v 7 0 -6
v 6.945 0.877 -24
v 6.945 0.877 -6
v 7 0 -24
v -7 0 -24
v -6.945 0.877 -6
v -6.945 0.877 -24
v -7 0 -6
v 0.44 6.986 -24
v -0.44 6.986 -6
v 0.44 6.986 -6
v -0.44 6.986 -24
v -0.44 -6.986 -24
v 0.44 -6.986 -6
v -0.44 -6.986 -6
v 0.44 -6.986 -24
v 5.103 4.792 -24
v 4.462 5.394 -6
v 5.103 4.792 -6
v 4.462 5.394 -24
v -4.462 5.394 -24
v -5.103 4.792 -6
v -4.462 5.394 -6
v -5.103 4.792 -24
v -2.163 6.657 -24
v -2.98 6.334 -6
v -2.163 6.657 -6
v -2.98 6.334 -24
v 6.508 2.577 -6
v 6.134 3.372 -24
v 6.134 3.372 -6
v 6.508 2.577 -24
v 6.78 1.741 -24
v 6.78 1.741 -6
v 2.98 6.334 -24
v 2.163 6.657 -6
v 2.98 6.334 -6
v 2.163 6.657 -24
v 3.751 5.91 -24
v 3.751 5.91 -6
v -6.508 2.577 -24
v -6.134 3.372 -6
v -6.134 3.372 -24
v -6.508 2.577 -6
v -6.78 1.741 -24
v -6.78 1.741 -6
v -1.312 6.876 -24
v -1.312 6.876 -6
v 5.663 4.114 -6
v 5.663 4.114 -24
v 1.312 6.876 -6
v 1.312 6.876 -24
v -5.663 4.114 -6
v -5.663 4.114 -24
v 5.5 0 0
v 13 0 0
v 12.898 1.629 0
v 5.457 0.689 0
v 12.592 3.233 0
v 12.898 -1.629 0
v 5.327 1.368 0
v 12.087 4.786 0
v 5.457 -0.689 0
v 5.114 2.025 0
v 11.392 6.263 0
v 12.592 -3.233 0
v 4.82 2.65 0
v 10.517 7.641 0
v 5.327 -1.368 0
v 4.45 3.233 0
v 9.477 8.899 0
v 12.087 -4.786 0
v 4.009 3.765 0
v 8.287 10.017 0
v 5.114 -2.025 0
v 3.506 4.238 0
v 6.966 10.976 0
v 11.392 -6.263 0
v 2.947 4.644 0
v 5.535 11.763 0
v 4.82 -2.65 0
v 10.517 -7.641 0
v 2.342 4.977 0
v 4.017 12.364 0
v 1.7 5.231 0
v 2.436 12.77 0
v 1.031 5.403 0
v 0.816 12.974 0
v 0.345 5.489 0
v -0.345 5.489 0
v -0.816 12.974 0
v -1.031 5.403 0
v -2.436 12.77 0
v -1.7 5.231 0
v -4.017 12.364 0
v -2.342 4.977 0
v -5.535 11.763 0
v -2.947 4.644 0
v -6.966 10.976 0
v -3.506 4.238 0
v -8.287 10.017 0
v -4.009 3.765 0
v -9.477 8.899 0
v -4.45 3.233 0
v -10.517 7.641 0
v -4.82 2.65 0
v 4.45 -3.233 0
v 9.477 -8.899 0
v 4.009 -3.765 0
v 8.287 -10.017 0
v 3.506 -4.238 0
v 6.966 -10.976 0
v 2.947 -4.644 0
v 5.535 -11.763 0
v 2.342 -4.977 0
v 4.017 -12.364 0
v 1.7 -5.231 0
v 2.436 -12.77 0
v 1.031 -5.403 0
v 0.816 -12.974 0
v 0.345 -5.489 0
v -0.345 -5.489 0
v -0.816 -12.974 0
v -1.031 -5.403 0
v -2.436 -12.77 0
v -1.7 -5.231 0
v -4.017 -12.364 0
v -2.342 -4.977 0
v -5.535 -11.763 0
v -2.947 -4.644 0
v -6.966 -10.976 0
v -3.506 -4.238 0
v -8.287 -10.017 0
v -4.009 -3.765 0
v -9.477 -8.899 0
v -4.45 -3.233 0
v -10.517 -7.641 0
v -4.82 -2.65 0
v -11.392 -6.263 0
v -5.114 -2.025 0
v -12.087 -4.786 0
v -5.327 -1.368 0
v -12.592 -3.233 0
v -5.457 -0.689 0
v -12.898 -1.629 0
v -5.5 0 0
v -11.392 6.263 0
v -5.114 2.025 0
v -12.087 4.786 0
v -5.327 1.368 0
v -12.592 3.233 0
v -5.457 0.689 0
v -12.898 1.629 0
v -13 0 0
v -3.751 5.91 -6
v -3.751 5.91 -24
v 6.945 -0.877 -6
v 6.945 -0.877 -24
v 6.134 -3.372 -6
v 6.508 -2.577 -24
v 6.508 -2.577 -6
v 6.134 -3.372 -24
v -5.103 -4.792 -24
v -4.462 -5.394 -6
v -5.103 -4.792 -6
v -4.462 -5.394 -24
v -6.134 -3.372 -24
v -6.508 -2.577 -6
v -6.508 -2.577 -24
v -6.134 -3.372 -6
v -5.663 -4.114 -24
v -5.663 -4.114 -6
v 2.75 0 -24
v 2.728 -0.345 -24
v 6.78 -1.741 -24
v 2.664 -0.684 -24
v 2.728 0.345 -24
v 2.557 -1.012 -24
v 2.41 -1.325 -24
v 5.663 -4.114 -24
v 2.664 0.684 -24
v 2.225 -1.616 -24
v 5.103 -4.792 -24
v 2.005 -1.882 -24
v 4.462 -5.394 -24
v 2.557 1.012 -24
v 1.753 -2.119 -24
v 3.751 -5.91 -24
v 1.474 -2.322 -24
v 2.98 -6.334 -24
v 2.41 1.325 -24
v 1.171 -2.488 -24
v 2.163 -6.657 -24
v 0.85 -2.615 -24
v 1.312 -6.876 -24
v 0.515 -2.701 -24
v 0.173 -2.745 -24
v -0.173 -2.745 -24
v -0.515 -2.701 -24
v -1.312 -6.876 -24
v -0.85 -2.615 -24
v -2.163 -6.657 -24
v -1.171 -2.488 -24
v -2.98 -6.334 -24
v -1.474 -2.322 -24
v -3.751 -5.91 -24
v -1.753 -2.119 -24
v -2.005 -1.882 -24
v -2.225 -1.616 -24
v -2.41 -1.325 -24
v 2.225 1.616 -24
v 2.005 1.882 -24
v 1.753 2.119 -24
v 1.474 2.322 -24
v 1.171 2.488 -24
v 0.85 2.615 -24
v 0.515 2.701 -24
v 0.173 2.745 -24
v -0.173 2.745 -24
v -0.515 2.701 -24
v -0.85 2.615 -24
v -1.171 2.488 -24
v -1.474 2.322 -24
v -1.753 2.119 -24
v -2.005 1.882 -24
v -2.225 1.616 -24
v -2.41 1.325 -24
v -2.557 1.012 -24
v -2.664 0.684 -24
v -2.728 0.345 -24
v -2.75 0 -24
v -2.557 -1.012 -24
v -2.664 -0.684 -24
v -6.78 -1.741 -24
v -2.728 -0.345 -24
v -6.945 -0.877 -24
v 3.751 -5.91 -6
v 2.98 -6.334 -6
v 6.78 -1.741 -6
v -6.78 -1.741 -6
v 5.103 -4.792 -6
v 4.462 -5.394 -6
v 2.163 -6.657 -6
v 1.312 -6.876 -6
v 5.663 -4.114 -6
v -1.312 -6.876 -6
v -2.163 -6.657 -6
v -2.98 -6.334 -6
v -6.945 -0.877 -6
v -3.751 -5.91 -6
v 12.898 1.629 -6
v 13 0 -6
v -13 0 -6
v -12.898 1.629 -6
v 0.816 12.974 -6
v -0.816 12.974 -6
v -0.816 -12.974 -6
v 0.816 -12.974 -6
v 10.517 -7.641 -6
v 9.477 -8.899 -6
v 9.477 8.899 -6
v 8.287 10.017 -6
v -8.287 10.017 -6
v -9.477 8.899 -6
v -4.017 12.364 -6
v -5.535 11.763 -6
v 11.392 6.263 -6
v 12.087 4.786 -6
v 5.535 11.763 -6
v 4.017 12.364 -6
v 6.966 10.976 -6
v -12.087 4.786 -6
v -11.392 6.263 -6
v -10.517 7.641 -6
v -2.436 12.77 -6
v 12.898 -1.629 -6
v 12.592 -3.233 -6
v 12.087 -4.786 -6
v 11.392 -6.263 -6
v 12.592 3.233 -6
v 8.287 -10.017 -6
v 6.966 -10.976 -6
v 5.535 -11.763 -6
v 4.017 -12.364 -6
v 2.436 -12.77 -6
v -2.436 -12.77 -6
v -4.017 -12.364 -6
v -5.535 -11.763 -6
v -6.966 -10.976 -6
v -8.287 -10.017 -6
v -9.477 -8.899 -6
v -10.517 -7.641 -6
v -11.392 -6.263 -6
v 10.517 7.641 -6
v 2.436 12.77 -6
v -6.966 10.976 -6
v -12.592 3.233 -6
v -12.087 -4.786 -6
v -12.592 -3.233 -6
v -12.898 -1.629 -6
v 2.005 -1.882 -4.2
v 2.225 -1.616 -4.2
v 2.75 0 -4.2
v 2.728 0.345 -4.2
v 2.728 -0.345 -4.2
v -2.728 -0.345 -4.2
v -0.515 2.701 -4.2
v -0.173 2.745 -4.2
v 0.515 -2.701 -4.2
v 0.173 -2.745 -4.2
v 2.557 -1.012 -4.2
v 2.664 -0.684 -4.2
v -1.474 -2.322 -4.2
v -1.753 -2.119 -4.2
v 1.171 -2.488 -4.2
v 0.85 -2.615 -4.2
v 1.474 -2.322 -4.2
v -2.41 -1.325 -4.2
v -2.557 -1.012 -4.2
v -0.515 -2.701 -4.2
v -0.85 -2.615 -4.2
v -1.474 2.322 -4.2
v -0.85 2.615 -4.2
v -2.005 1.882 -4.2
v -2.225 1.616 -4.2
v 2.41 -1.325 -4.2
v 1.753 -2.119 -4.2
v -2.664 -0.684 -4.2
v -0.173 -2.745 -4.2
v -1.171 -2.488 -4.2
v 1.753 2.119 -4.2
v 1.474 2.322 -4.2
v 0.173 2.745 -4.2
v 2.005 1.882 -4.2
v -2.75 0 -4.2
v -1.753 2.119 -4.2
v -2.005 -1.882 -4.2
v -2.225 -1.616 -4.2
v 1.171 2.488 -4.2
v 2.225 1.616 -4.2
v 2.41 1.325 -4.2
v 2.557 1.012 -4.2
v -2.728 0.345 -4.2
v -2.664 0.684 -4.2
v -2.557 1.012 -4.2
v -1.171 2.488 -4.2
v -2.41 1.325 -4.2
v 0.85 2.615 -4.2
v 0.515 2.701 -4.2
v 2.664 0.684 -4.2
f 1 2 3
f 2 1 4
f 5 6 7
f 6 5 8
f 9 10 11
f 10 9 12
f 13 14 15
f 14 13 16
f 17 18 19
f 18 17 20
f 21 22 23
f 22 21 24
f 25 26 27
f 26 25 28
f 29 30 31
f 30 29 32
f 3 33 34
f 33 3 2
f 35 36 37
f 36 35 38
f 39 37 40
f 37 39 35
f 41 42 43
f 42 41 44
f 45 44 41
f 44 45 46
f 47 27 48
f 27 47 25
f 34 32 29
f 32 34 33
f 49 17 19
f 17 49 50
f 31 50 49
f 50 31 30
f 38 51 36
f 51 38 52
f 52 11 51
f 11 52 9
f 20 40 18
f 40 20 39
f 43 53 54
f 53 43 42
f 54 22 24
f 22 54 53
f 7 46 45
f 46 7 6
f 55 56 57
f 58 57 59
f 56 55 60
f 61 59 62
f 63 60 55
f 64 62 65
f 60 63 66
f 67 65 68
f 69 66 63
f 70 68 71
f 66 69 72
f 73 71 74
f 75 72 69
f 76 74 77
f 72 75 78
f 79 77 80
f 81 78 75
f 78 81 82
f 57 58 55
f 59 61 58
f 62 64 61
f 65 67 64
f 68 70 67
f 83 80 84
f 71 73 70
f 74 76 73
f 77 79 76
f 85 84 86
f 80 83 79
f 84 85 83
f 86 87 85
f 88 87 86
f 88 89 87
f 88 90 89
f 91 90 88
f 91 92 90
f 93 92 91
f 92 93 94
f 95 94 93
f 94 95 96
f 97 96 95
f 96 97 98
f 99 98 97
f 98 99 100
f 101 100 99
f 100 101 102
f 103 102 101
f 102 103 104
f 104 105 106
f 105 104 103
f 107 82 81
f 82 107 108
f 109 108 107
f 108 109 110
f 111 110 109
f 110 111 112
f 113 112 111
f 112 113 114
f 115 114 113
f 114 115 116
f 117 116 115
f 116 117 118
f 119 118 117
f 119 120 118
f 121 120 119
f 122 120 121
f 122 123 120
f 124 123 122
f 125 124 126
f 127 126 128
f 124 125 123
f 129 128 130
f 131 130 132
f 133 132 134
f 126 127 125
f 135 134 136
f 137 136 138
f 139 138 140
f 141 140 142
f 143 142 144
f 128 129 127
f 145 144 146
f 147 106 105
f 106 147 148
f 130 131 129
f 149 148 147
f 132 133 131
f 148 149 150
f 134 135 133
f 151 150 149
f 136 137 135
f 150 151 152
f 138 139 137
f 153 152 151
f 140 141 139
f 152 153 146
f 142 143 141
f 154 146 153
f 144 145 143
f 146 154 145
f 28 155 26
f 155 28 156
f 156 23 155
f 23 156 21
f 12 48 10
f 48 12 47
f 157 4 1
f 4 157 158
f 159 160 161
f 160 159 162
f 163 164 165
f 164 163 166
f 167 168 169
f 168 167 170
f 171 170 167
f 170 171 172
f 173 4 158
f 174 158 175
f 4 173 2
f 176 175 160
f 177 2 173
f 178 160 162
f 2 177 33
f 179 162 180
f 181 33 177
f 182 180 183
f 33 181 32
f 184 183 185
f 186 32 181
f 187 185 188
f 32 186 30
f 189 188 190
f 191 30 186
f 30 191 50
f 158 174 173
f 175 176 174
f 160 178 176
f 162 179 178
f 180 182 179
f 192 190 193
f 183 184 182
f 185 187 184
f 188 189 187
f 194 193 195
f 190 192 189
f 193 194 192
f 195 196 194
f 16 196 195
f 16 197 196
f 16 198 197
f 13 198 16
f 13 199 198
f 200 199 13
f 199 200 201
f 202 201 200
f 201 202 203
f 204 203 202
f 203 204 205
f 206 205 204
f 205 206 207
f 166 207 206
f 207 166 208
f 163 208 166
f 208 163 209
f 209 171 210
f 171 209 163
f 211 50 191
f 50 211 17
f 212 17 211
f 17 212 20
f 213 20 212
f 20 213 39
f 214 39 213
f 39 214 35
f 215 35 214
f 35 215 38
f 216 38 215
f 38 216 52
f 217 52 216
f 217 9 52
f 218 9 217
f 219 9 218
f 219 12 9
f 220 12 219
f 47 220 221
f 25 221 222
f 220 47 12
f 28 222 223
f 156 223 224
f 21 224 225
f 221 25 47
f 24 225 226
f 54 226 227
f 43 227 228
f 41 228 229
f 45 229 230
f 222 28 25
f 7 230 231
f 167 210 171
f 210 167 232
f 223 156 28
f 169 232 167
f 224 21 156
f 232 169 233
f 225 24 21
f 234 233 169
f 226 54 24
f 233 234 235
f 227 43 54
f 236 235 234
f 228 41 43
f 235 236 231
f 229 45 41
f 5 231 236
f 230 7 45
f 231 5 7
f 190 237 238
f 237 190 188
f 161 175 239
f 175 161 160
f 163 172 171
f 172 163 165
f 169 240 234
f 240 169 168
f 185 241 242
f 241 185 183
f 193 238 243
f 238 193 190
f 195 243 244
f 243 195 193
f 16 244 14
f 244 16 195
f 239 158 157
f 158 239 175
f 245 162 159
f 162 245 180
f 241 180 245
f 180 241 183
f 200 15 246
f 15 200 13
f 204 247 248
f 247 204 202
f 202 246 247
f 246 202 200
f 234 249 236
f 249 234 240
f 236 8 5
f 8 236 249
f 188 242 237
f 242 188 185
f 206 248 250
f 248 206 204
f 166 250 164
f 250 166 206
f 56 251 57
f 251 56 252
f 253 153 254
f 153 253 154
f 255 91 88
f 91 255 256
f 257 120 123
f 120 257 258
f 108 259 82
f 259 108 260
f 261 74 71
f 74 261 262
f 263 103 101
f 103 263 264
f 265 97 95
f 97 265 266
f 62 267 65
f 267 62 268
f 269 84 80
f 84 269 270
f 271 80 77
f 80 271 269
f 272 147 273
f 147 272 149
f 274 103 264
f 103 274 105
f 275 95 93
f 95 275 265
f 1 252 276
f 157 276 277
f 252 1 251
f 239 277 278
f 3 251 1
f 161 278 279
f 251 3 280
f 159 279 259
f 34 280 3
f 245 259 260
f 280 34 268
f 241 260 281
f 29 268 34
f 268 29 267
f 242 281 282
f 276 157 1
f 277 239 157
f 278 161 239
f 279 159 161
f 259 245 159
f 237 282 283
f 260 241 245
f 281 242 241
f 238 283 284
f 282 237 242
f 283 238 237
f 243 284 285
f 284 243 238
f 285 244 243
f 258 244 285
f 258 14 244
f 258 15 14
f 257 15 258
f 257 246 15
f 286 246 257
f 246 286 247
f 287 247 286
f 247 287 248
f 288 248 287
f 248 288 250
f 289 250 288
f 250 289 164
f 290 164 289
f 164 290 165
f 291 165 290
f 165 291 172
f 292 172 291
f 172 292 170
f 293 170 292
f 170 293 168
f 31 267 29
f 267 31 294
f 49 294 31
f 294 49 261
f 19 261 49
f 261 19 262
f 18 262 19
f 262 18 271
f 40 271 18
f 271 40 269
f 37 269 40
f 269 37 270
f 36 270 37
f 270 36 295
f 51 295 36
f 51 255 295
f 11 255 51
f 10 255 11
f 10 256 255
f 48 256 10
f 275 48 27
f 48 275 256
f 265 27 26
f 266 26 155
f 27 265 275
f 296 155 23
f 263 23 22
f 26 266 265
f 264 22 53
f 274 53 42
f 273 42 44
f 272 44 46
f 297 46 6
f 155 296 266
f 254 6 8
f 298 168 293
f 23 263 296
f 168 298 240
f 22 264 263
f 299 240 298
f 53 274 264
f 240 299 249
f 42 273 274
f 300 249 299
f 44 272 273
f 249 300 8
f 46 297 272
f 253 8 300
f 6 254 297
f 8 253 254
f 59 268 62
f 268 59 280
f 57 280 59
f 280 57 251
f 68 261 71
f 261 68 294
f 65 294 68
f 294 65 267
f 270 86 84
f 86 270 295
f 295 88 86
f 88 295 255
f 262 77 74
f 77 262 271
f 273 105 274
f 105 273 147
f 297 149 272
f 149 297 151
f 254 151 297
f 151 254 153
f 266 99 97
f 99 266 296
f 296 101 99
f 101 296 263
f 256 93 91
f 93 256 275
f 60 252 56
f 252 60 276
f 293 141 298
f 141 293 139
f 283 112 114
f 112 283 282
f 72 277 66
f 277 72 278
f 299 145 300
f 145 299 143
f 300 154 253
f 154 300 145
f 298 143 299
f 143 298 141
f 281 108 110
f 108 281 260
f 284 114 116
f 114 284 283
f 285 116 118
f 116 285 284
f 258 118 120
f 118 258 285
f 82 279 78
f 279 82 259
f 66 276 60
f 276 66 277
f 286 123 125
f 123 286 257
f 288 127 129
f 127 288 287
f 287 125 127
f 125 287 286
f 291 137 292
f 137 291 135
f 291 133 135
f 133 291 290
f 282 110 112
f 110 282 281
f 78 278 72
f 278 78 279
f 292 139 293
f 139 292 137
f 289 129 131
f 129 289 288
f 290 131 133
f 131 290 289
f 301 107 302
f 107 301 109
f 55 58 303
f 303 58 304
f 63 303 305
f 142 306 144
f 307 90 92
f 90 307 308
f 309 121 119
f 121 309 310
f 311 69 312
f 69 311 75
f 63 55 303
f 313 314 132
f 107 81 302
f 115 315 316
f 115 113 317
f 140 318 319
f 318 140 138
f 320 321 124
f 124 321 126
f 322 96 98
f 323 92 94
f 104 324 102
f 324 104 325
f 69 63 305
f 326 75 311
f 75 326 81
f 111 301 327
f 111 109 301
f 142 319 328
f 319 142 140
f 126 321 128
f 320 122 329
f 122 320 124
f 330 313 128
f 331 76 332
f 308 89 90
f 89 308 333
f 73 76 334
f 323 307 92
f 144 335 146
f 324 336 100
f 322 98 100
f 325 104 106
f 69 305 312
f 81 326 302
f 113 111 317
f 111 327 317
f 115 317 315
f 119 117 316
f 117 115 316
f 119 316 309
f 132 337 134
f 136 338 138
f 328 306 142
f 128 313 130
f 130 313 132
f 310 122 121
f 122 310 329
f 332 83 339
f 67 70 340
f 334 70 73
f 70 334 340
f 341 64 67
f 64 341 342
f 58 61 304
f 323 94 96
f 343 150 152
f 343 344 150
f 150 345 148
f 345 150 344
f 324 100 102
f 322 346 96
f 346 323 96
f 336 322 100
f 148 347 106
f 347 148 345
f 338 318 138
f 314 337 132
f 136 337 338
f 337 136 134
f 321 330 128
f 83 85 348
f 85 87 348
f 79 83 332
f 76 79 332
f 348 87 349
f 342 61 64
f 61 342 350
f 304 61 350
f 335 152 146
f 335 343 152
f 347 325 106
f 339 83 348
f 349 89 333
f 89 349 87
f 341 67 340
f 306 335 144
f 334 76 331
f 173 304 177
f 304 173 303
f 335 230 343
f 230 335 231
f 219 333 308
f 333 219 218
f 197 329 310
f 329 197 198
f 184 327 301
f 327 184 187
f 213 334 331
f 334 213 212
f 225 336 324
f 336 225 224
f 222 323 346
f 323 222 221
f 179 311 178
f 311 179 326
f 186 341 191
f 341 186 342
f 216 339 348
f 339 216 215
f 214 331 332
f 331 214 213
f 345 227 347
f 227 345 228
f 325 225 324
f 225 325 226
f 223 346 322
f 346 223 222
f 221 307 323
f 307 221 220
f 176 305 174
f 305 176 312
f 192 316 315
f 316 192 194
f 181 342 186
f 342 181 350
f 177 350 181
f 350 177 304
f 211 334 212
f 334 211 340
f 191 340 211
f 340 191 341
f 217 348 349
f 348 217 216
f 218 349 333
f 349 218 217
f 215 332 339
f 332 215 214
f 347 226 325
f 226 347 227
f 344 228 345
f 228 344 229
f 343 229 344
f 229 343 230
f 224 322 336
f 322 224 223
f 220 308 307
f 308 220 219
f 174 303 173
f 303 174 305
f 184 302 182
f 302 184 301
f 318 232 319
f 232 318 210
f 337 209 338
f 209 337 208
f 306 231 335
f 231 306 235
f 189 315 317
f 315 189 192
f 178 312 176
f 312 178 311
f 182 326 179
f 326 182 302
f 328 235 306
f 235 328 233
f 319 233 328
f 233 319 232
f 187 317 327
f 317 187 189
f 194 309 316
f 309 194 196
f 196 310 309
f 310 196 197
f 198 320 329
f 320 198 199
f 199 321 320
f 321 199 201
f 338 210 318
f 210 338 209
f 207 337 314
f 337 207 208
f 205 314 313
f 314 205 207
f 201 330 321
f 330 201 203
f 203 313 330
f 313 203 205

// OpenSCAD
$fn = 50;


difference() {
	union() {
		translate(v = [0, 0, -24.0000000000]) {
			cylinder(h = 24, r = 7.0000000000);
		}
		translate(v = [0, 0, -6.0000000000]) {
			cylinder(h = 6, r = 13.0000000000);
		}
	}
	union() {
		translate(v = [0, 0, 0]) {
			rotate(a = [0, 0, 0]) {
				difference() {
					union() {
						#translate(v = [0, 0, -24.0000000000]) {
							cylinder(h = 24, r = 2.2500000000);
						}
						#translate(v = [0, 0, -4.2000000000]) {
							cylinder(h = 4.2000000000, r1 = 2.7500000000, r2 = 5.5000000000);
						}
						#translate(v = [0, 0, -24.0000000000]) {
							cylinder(h = 24, r = 2.7500000000);
						}
						#translate(v = [0, 0, -24.0000000000]) {
							cylinder(h = 24, r = 2.2500000000);
						}
					}
					union();
				}
			}
		}
	}
}
